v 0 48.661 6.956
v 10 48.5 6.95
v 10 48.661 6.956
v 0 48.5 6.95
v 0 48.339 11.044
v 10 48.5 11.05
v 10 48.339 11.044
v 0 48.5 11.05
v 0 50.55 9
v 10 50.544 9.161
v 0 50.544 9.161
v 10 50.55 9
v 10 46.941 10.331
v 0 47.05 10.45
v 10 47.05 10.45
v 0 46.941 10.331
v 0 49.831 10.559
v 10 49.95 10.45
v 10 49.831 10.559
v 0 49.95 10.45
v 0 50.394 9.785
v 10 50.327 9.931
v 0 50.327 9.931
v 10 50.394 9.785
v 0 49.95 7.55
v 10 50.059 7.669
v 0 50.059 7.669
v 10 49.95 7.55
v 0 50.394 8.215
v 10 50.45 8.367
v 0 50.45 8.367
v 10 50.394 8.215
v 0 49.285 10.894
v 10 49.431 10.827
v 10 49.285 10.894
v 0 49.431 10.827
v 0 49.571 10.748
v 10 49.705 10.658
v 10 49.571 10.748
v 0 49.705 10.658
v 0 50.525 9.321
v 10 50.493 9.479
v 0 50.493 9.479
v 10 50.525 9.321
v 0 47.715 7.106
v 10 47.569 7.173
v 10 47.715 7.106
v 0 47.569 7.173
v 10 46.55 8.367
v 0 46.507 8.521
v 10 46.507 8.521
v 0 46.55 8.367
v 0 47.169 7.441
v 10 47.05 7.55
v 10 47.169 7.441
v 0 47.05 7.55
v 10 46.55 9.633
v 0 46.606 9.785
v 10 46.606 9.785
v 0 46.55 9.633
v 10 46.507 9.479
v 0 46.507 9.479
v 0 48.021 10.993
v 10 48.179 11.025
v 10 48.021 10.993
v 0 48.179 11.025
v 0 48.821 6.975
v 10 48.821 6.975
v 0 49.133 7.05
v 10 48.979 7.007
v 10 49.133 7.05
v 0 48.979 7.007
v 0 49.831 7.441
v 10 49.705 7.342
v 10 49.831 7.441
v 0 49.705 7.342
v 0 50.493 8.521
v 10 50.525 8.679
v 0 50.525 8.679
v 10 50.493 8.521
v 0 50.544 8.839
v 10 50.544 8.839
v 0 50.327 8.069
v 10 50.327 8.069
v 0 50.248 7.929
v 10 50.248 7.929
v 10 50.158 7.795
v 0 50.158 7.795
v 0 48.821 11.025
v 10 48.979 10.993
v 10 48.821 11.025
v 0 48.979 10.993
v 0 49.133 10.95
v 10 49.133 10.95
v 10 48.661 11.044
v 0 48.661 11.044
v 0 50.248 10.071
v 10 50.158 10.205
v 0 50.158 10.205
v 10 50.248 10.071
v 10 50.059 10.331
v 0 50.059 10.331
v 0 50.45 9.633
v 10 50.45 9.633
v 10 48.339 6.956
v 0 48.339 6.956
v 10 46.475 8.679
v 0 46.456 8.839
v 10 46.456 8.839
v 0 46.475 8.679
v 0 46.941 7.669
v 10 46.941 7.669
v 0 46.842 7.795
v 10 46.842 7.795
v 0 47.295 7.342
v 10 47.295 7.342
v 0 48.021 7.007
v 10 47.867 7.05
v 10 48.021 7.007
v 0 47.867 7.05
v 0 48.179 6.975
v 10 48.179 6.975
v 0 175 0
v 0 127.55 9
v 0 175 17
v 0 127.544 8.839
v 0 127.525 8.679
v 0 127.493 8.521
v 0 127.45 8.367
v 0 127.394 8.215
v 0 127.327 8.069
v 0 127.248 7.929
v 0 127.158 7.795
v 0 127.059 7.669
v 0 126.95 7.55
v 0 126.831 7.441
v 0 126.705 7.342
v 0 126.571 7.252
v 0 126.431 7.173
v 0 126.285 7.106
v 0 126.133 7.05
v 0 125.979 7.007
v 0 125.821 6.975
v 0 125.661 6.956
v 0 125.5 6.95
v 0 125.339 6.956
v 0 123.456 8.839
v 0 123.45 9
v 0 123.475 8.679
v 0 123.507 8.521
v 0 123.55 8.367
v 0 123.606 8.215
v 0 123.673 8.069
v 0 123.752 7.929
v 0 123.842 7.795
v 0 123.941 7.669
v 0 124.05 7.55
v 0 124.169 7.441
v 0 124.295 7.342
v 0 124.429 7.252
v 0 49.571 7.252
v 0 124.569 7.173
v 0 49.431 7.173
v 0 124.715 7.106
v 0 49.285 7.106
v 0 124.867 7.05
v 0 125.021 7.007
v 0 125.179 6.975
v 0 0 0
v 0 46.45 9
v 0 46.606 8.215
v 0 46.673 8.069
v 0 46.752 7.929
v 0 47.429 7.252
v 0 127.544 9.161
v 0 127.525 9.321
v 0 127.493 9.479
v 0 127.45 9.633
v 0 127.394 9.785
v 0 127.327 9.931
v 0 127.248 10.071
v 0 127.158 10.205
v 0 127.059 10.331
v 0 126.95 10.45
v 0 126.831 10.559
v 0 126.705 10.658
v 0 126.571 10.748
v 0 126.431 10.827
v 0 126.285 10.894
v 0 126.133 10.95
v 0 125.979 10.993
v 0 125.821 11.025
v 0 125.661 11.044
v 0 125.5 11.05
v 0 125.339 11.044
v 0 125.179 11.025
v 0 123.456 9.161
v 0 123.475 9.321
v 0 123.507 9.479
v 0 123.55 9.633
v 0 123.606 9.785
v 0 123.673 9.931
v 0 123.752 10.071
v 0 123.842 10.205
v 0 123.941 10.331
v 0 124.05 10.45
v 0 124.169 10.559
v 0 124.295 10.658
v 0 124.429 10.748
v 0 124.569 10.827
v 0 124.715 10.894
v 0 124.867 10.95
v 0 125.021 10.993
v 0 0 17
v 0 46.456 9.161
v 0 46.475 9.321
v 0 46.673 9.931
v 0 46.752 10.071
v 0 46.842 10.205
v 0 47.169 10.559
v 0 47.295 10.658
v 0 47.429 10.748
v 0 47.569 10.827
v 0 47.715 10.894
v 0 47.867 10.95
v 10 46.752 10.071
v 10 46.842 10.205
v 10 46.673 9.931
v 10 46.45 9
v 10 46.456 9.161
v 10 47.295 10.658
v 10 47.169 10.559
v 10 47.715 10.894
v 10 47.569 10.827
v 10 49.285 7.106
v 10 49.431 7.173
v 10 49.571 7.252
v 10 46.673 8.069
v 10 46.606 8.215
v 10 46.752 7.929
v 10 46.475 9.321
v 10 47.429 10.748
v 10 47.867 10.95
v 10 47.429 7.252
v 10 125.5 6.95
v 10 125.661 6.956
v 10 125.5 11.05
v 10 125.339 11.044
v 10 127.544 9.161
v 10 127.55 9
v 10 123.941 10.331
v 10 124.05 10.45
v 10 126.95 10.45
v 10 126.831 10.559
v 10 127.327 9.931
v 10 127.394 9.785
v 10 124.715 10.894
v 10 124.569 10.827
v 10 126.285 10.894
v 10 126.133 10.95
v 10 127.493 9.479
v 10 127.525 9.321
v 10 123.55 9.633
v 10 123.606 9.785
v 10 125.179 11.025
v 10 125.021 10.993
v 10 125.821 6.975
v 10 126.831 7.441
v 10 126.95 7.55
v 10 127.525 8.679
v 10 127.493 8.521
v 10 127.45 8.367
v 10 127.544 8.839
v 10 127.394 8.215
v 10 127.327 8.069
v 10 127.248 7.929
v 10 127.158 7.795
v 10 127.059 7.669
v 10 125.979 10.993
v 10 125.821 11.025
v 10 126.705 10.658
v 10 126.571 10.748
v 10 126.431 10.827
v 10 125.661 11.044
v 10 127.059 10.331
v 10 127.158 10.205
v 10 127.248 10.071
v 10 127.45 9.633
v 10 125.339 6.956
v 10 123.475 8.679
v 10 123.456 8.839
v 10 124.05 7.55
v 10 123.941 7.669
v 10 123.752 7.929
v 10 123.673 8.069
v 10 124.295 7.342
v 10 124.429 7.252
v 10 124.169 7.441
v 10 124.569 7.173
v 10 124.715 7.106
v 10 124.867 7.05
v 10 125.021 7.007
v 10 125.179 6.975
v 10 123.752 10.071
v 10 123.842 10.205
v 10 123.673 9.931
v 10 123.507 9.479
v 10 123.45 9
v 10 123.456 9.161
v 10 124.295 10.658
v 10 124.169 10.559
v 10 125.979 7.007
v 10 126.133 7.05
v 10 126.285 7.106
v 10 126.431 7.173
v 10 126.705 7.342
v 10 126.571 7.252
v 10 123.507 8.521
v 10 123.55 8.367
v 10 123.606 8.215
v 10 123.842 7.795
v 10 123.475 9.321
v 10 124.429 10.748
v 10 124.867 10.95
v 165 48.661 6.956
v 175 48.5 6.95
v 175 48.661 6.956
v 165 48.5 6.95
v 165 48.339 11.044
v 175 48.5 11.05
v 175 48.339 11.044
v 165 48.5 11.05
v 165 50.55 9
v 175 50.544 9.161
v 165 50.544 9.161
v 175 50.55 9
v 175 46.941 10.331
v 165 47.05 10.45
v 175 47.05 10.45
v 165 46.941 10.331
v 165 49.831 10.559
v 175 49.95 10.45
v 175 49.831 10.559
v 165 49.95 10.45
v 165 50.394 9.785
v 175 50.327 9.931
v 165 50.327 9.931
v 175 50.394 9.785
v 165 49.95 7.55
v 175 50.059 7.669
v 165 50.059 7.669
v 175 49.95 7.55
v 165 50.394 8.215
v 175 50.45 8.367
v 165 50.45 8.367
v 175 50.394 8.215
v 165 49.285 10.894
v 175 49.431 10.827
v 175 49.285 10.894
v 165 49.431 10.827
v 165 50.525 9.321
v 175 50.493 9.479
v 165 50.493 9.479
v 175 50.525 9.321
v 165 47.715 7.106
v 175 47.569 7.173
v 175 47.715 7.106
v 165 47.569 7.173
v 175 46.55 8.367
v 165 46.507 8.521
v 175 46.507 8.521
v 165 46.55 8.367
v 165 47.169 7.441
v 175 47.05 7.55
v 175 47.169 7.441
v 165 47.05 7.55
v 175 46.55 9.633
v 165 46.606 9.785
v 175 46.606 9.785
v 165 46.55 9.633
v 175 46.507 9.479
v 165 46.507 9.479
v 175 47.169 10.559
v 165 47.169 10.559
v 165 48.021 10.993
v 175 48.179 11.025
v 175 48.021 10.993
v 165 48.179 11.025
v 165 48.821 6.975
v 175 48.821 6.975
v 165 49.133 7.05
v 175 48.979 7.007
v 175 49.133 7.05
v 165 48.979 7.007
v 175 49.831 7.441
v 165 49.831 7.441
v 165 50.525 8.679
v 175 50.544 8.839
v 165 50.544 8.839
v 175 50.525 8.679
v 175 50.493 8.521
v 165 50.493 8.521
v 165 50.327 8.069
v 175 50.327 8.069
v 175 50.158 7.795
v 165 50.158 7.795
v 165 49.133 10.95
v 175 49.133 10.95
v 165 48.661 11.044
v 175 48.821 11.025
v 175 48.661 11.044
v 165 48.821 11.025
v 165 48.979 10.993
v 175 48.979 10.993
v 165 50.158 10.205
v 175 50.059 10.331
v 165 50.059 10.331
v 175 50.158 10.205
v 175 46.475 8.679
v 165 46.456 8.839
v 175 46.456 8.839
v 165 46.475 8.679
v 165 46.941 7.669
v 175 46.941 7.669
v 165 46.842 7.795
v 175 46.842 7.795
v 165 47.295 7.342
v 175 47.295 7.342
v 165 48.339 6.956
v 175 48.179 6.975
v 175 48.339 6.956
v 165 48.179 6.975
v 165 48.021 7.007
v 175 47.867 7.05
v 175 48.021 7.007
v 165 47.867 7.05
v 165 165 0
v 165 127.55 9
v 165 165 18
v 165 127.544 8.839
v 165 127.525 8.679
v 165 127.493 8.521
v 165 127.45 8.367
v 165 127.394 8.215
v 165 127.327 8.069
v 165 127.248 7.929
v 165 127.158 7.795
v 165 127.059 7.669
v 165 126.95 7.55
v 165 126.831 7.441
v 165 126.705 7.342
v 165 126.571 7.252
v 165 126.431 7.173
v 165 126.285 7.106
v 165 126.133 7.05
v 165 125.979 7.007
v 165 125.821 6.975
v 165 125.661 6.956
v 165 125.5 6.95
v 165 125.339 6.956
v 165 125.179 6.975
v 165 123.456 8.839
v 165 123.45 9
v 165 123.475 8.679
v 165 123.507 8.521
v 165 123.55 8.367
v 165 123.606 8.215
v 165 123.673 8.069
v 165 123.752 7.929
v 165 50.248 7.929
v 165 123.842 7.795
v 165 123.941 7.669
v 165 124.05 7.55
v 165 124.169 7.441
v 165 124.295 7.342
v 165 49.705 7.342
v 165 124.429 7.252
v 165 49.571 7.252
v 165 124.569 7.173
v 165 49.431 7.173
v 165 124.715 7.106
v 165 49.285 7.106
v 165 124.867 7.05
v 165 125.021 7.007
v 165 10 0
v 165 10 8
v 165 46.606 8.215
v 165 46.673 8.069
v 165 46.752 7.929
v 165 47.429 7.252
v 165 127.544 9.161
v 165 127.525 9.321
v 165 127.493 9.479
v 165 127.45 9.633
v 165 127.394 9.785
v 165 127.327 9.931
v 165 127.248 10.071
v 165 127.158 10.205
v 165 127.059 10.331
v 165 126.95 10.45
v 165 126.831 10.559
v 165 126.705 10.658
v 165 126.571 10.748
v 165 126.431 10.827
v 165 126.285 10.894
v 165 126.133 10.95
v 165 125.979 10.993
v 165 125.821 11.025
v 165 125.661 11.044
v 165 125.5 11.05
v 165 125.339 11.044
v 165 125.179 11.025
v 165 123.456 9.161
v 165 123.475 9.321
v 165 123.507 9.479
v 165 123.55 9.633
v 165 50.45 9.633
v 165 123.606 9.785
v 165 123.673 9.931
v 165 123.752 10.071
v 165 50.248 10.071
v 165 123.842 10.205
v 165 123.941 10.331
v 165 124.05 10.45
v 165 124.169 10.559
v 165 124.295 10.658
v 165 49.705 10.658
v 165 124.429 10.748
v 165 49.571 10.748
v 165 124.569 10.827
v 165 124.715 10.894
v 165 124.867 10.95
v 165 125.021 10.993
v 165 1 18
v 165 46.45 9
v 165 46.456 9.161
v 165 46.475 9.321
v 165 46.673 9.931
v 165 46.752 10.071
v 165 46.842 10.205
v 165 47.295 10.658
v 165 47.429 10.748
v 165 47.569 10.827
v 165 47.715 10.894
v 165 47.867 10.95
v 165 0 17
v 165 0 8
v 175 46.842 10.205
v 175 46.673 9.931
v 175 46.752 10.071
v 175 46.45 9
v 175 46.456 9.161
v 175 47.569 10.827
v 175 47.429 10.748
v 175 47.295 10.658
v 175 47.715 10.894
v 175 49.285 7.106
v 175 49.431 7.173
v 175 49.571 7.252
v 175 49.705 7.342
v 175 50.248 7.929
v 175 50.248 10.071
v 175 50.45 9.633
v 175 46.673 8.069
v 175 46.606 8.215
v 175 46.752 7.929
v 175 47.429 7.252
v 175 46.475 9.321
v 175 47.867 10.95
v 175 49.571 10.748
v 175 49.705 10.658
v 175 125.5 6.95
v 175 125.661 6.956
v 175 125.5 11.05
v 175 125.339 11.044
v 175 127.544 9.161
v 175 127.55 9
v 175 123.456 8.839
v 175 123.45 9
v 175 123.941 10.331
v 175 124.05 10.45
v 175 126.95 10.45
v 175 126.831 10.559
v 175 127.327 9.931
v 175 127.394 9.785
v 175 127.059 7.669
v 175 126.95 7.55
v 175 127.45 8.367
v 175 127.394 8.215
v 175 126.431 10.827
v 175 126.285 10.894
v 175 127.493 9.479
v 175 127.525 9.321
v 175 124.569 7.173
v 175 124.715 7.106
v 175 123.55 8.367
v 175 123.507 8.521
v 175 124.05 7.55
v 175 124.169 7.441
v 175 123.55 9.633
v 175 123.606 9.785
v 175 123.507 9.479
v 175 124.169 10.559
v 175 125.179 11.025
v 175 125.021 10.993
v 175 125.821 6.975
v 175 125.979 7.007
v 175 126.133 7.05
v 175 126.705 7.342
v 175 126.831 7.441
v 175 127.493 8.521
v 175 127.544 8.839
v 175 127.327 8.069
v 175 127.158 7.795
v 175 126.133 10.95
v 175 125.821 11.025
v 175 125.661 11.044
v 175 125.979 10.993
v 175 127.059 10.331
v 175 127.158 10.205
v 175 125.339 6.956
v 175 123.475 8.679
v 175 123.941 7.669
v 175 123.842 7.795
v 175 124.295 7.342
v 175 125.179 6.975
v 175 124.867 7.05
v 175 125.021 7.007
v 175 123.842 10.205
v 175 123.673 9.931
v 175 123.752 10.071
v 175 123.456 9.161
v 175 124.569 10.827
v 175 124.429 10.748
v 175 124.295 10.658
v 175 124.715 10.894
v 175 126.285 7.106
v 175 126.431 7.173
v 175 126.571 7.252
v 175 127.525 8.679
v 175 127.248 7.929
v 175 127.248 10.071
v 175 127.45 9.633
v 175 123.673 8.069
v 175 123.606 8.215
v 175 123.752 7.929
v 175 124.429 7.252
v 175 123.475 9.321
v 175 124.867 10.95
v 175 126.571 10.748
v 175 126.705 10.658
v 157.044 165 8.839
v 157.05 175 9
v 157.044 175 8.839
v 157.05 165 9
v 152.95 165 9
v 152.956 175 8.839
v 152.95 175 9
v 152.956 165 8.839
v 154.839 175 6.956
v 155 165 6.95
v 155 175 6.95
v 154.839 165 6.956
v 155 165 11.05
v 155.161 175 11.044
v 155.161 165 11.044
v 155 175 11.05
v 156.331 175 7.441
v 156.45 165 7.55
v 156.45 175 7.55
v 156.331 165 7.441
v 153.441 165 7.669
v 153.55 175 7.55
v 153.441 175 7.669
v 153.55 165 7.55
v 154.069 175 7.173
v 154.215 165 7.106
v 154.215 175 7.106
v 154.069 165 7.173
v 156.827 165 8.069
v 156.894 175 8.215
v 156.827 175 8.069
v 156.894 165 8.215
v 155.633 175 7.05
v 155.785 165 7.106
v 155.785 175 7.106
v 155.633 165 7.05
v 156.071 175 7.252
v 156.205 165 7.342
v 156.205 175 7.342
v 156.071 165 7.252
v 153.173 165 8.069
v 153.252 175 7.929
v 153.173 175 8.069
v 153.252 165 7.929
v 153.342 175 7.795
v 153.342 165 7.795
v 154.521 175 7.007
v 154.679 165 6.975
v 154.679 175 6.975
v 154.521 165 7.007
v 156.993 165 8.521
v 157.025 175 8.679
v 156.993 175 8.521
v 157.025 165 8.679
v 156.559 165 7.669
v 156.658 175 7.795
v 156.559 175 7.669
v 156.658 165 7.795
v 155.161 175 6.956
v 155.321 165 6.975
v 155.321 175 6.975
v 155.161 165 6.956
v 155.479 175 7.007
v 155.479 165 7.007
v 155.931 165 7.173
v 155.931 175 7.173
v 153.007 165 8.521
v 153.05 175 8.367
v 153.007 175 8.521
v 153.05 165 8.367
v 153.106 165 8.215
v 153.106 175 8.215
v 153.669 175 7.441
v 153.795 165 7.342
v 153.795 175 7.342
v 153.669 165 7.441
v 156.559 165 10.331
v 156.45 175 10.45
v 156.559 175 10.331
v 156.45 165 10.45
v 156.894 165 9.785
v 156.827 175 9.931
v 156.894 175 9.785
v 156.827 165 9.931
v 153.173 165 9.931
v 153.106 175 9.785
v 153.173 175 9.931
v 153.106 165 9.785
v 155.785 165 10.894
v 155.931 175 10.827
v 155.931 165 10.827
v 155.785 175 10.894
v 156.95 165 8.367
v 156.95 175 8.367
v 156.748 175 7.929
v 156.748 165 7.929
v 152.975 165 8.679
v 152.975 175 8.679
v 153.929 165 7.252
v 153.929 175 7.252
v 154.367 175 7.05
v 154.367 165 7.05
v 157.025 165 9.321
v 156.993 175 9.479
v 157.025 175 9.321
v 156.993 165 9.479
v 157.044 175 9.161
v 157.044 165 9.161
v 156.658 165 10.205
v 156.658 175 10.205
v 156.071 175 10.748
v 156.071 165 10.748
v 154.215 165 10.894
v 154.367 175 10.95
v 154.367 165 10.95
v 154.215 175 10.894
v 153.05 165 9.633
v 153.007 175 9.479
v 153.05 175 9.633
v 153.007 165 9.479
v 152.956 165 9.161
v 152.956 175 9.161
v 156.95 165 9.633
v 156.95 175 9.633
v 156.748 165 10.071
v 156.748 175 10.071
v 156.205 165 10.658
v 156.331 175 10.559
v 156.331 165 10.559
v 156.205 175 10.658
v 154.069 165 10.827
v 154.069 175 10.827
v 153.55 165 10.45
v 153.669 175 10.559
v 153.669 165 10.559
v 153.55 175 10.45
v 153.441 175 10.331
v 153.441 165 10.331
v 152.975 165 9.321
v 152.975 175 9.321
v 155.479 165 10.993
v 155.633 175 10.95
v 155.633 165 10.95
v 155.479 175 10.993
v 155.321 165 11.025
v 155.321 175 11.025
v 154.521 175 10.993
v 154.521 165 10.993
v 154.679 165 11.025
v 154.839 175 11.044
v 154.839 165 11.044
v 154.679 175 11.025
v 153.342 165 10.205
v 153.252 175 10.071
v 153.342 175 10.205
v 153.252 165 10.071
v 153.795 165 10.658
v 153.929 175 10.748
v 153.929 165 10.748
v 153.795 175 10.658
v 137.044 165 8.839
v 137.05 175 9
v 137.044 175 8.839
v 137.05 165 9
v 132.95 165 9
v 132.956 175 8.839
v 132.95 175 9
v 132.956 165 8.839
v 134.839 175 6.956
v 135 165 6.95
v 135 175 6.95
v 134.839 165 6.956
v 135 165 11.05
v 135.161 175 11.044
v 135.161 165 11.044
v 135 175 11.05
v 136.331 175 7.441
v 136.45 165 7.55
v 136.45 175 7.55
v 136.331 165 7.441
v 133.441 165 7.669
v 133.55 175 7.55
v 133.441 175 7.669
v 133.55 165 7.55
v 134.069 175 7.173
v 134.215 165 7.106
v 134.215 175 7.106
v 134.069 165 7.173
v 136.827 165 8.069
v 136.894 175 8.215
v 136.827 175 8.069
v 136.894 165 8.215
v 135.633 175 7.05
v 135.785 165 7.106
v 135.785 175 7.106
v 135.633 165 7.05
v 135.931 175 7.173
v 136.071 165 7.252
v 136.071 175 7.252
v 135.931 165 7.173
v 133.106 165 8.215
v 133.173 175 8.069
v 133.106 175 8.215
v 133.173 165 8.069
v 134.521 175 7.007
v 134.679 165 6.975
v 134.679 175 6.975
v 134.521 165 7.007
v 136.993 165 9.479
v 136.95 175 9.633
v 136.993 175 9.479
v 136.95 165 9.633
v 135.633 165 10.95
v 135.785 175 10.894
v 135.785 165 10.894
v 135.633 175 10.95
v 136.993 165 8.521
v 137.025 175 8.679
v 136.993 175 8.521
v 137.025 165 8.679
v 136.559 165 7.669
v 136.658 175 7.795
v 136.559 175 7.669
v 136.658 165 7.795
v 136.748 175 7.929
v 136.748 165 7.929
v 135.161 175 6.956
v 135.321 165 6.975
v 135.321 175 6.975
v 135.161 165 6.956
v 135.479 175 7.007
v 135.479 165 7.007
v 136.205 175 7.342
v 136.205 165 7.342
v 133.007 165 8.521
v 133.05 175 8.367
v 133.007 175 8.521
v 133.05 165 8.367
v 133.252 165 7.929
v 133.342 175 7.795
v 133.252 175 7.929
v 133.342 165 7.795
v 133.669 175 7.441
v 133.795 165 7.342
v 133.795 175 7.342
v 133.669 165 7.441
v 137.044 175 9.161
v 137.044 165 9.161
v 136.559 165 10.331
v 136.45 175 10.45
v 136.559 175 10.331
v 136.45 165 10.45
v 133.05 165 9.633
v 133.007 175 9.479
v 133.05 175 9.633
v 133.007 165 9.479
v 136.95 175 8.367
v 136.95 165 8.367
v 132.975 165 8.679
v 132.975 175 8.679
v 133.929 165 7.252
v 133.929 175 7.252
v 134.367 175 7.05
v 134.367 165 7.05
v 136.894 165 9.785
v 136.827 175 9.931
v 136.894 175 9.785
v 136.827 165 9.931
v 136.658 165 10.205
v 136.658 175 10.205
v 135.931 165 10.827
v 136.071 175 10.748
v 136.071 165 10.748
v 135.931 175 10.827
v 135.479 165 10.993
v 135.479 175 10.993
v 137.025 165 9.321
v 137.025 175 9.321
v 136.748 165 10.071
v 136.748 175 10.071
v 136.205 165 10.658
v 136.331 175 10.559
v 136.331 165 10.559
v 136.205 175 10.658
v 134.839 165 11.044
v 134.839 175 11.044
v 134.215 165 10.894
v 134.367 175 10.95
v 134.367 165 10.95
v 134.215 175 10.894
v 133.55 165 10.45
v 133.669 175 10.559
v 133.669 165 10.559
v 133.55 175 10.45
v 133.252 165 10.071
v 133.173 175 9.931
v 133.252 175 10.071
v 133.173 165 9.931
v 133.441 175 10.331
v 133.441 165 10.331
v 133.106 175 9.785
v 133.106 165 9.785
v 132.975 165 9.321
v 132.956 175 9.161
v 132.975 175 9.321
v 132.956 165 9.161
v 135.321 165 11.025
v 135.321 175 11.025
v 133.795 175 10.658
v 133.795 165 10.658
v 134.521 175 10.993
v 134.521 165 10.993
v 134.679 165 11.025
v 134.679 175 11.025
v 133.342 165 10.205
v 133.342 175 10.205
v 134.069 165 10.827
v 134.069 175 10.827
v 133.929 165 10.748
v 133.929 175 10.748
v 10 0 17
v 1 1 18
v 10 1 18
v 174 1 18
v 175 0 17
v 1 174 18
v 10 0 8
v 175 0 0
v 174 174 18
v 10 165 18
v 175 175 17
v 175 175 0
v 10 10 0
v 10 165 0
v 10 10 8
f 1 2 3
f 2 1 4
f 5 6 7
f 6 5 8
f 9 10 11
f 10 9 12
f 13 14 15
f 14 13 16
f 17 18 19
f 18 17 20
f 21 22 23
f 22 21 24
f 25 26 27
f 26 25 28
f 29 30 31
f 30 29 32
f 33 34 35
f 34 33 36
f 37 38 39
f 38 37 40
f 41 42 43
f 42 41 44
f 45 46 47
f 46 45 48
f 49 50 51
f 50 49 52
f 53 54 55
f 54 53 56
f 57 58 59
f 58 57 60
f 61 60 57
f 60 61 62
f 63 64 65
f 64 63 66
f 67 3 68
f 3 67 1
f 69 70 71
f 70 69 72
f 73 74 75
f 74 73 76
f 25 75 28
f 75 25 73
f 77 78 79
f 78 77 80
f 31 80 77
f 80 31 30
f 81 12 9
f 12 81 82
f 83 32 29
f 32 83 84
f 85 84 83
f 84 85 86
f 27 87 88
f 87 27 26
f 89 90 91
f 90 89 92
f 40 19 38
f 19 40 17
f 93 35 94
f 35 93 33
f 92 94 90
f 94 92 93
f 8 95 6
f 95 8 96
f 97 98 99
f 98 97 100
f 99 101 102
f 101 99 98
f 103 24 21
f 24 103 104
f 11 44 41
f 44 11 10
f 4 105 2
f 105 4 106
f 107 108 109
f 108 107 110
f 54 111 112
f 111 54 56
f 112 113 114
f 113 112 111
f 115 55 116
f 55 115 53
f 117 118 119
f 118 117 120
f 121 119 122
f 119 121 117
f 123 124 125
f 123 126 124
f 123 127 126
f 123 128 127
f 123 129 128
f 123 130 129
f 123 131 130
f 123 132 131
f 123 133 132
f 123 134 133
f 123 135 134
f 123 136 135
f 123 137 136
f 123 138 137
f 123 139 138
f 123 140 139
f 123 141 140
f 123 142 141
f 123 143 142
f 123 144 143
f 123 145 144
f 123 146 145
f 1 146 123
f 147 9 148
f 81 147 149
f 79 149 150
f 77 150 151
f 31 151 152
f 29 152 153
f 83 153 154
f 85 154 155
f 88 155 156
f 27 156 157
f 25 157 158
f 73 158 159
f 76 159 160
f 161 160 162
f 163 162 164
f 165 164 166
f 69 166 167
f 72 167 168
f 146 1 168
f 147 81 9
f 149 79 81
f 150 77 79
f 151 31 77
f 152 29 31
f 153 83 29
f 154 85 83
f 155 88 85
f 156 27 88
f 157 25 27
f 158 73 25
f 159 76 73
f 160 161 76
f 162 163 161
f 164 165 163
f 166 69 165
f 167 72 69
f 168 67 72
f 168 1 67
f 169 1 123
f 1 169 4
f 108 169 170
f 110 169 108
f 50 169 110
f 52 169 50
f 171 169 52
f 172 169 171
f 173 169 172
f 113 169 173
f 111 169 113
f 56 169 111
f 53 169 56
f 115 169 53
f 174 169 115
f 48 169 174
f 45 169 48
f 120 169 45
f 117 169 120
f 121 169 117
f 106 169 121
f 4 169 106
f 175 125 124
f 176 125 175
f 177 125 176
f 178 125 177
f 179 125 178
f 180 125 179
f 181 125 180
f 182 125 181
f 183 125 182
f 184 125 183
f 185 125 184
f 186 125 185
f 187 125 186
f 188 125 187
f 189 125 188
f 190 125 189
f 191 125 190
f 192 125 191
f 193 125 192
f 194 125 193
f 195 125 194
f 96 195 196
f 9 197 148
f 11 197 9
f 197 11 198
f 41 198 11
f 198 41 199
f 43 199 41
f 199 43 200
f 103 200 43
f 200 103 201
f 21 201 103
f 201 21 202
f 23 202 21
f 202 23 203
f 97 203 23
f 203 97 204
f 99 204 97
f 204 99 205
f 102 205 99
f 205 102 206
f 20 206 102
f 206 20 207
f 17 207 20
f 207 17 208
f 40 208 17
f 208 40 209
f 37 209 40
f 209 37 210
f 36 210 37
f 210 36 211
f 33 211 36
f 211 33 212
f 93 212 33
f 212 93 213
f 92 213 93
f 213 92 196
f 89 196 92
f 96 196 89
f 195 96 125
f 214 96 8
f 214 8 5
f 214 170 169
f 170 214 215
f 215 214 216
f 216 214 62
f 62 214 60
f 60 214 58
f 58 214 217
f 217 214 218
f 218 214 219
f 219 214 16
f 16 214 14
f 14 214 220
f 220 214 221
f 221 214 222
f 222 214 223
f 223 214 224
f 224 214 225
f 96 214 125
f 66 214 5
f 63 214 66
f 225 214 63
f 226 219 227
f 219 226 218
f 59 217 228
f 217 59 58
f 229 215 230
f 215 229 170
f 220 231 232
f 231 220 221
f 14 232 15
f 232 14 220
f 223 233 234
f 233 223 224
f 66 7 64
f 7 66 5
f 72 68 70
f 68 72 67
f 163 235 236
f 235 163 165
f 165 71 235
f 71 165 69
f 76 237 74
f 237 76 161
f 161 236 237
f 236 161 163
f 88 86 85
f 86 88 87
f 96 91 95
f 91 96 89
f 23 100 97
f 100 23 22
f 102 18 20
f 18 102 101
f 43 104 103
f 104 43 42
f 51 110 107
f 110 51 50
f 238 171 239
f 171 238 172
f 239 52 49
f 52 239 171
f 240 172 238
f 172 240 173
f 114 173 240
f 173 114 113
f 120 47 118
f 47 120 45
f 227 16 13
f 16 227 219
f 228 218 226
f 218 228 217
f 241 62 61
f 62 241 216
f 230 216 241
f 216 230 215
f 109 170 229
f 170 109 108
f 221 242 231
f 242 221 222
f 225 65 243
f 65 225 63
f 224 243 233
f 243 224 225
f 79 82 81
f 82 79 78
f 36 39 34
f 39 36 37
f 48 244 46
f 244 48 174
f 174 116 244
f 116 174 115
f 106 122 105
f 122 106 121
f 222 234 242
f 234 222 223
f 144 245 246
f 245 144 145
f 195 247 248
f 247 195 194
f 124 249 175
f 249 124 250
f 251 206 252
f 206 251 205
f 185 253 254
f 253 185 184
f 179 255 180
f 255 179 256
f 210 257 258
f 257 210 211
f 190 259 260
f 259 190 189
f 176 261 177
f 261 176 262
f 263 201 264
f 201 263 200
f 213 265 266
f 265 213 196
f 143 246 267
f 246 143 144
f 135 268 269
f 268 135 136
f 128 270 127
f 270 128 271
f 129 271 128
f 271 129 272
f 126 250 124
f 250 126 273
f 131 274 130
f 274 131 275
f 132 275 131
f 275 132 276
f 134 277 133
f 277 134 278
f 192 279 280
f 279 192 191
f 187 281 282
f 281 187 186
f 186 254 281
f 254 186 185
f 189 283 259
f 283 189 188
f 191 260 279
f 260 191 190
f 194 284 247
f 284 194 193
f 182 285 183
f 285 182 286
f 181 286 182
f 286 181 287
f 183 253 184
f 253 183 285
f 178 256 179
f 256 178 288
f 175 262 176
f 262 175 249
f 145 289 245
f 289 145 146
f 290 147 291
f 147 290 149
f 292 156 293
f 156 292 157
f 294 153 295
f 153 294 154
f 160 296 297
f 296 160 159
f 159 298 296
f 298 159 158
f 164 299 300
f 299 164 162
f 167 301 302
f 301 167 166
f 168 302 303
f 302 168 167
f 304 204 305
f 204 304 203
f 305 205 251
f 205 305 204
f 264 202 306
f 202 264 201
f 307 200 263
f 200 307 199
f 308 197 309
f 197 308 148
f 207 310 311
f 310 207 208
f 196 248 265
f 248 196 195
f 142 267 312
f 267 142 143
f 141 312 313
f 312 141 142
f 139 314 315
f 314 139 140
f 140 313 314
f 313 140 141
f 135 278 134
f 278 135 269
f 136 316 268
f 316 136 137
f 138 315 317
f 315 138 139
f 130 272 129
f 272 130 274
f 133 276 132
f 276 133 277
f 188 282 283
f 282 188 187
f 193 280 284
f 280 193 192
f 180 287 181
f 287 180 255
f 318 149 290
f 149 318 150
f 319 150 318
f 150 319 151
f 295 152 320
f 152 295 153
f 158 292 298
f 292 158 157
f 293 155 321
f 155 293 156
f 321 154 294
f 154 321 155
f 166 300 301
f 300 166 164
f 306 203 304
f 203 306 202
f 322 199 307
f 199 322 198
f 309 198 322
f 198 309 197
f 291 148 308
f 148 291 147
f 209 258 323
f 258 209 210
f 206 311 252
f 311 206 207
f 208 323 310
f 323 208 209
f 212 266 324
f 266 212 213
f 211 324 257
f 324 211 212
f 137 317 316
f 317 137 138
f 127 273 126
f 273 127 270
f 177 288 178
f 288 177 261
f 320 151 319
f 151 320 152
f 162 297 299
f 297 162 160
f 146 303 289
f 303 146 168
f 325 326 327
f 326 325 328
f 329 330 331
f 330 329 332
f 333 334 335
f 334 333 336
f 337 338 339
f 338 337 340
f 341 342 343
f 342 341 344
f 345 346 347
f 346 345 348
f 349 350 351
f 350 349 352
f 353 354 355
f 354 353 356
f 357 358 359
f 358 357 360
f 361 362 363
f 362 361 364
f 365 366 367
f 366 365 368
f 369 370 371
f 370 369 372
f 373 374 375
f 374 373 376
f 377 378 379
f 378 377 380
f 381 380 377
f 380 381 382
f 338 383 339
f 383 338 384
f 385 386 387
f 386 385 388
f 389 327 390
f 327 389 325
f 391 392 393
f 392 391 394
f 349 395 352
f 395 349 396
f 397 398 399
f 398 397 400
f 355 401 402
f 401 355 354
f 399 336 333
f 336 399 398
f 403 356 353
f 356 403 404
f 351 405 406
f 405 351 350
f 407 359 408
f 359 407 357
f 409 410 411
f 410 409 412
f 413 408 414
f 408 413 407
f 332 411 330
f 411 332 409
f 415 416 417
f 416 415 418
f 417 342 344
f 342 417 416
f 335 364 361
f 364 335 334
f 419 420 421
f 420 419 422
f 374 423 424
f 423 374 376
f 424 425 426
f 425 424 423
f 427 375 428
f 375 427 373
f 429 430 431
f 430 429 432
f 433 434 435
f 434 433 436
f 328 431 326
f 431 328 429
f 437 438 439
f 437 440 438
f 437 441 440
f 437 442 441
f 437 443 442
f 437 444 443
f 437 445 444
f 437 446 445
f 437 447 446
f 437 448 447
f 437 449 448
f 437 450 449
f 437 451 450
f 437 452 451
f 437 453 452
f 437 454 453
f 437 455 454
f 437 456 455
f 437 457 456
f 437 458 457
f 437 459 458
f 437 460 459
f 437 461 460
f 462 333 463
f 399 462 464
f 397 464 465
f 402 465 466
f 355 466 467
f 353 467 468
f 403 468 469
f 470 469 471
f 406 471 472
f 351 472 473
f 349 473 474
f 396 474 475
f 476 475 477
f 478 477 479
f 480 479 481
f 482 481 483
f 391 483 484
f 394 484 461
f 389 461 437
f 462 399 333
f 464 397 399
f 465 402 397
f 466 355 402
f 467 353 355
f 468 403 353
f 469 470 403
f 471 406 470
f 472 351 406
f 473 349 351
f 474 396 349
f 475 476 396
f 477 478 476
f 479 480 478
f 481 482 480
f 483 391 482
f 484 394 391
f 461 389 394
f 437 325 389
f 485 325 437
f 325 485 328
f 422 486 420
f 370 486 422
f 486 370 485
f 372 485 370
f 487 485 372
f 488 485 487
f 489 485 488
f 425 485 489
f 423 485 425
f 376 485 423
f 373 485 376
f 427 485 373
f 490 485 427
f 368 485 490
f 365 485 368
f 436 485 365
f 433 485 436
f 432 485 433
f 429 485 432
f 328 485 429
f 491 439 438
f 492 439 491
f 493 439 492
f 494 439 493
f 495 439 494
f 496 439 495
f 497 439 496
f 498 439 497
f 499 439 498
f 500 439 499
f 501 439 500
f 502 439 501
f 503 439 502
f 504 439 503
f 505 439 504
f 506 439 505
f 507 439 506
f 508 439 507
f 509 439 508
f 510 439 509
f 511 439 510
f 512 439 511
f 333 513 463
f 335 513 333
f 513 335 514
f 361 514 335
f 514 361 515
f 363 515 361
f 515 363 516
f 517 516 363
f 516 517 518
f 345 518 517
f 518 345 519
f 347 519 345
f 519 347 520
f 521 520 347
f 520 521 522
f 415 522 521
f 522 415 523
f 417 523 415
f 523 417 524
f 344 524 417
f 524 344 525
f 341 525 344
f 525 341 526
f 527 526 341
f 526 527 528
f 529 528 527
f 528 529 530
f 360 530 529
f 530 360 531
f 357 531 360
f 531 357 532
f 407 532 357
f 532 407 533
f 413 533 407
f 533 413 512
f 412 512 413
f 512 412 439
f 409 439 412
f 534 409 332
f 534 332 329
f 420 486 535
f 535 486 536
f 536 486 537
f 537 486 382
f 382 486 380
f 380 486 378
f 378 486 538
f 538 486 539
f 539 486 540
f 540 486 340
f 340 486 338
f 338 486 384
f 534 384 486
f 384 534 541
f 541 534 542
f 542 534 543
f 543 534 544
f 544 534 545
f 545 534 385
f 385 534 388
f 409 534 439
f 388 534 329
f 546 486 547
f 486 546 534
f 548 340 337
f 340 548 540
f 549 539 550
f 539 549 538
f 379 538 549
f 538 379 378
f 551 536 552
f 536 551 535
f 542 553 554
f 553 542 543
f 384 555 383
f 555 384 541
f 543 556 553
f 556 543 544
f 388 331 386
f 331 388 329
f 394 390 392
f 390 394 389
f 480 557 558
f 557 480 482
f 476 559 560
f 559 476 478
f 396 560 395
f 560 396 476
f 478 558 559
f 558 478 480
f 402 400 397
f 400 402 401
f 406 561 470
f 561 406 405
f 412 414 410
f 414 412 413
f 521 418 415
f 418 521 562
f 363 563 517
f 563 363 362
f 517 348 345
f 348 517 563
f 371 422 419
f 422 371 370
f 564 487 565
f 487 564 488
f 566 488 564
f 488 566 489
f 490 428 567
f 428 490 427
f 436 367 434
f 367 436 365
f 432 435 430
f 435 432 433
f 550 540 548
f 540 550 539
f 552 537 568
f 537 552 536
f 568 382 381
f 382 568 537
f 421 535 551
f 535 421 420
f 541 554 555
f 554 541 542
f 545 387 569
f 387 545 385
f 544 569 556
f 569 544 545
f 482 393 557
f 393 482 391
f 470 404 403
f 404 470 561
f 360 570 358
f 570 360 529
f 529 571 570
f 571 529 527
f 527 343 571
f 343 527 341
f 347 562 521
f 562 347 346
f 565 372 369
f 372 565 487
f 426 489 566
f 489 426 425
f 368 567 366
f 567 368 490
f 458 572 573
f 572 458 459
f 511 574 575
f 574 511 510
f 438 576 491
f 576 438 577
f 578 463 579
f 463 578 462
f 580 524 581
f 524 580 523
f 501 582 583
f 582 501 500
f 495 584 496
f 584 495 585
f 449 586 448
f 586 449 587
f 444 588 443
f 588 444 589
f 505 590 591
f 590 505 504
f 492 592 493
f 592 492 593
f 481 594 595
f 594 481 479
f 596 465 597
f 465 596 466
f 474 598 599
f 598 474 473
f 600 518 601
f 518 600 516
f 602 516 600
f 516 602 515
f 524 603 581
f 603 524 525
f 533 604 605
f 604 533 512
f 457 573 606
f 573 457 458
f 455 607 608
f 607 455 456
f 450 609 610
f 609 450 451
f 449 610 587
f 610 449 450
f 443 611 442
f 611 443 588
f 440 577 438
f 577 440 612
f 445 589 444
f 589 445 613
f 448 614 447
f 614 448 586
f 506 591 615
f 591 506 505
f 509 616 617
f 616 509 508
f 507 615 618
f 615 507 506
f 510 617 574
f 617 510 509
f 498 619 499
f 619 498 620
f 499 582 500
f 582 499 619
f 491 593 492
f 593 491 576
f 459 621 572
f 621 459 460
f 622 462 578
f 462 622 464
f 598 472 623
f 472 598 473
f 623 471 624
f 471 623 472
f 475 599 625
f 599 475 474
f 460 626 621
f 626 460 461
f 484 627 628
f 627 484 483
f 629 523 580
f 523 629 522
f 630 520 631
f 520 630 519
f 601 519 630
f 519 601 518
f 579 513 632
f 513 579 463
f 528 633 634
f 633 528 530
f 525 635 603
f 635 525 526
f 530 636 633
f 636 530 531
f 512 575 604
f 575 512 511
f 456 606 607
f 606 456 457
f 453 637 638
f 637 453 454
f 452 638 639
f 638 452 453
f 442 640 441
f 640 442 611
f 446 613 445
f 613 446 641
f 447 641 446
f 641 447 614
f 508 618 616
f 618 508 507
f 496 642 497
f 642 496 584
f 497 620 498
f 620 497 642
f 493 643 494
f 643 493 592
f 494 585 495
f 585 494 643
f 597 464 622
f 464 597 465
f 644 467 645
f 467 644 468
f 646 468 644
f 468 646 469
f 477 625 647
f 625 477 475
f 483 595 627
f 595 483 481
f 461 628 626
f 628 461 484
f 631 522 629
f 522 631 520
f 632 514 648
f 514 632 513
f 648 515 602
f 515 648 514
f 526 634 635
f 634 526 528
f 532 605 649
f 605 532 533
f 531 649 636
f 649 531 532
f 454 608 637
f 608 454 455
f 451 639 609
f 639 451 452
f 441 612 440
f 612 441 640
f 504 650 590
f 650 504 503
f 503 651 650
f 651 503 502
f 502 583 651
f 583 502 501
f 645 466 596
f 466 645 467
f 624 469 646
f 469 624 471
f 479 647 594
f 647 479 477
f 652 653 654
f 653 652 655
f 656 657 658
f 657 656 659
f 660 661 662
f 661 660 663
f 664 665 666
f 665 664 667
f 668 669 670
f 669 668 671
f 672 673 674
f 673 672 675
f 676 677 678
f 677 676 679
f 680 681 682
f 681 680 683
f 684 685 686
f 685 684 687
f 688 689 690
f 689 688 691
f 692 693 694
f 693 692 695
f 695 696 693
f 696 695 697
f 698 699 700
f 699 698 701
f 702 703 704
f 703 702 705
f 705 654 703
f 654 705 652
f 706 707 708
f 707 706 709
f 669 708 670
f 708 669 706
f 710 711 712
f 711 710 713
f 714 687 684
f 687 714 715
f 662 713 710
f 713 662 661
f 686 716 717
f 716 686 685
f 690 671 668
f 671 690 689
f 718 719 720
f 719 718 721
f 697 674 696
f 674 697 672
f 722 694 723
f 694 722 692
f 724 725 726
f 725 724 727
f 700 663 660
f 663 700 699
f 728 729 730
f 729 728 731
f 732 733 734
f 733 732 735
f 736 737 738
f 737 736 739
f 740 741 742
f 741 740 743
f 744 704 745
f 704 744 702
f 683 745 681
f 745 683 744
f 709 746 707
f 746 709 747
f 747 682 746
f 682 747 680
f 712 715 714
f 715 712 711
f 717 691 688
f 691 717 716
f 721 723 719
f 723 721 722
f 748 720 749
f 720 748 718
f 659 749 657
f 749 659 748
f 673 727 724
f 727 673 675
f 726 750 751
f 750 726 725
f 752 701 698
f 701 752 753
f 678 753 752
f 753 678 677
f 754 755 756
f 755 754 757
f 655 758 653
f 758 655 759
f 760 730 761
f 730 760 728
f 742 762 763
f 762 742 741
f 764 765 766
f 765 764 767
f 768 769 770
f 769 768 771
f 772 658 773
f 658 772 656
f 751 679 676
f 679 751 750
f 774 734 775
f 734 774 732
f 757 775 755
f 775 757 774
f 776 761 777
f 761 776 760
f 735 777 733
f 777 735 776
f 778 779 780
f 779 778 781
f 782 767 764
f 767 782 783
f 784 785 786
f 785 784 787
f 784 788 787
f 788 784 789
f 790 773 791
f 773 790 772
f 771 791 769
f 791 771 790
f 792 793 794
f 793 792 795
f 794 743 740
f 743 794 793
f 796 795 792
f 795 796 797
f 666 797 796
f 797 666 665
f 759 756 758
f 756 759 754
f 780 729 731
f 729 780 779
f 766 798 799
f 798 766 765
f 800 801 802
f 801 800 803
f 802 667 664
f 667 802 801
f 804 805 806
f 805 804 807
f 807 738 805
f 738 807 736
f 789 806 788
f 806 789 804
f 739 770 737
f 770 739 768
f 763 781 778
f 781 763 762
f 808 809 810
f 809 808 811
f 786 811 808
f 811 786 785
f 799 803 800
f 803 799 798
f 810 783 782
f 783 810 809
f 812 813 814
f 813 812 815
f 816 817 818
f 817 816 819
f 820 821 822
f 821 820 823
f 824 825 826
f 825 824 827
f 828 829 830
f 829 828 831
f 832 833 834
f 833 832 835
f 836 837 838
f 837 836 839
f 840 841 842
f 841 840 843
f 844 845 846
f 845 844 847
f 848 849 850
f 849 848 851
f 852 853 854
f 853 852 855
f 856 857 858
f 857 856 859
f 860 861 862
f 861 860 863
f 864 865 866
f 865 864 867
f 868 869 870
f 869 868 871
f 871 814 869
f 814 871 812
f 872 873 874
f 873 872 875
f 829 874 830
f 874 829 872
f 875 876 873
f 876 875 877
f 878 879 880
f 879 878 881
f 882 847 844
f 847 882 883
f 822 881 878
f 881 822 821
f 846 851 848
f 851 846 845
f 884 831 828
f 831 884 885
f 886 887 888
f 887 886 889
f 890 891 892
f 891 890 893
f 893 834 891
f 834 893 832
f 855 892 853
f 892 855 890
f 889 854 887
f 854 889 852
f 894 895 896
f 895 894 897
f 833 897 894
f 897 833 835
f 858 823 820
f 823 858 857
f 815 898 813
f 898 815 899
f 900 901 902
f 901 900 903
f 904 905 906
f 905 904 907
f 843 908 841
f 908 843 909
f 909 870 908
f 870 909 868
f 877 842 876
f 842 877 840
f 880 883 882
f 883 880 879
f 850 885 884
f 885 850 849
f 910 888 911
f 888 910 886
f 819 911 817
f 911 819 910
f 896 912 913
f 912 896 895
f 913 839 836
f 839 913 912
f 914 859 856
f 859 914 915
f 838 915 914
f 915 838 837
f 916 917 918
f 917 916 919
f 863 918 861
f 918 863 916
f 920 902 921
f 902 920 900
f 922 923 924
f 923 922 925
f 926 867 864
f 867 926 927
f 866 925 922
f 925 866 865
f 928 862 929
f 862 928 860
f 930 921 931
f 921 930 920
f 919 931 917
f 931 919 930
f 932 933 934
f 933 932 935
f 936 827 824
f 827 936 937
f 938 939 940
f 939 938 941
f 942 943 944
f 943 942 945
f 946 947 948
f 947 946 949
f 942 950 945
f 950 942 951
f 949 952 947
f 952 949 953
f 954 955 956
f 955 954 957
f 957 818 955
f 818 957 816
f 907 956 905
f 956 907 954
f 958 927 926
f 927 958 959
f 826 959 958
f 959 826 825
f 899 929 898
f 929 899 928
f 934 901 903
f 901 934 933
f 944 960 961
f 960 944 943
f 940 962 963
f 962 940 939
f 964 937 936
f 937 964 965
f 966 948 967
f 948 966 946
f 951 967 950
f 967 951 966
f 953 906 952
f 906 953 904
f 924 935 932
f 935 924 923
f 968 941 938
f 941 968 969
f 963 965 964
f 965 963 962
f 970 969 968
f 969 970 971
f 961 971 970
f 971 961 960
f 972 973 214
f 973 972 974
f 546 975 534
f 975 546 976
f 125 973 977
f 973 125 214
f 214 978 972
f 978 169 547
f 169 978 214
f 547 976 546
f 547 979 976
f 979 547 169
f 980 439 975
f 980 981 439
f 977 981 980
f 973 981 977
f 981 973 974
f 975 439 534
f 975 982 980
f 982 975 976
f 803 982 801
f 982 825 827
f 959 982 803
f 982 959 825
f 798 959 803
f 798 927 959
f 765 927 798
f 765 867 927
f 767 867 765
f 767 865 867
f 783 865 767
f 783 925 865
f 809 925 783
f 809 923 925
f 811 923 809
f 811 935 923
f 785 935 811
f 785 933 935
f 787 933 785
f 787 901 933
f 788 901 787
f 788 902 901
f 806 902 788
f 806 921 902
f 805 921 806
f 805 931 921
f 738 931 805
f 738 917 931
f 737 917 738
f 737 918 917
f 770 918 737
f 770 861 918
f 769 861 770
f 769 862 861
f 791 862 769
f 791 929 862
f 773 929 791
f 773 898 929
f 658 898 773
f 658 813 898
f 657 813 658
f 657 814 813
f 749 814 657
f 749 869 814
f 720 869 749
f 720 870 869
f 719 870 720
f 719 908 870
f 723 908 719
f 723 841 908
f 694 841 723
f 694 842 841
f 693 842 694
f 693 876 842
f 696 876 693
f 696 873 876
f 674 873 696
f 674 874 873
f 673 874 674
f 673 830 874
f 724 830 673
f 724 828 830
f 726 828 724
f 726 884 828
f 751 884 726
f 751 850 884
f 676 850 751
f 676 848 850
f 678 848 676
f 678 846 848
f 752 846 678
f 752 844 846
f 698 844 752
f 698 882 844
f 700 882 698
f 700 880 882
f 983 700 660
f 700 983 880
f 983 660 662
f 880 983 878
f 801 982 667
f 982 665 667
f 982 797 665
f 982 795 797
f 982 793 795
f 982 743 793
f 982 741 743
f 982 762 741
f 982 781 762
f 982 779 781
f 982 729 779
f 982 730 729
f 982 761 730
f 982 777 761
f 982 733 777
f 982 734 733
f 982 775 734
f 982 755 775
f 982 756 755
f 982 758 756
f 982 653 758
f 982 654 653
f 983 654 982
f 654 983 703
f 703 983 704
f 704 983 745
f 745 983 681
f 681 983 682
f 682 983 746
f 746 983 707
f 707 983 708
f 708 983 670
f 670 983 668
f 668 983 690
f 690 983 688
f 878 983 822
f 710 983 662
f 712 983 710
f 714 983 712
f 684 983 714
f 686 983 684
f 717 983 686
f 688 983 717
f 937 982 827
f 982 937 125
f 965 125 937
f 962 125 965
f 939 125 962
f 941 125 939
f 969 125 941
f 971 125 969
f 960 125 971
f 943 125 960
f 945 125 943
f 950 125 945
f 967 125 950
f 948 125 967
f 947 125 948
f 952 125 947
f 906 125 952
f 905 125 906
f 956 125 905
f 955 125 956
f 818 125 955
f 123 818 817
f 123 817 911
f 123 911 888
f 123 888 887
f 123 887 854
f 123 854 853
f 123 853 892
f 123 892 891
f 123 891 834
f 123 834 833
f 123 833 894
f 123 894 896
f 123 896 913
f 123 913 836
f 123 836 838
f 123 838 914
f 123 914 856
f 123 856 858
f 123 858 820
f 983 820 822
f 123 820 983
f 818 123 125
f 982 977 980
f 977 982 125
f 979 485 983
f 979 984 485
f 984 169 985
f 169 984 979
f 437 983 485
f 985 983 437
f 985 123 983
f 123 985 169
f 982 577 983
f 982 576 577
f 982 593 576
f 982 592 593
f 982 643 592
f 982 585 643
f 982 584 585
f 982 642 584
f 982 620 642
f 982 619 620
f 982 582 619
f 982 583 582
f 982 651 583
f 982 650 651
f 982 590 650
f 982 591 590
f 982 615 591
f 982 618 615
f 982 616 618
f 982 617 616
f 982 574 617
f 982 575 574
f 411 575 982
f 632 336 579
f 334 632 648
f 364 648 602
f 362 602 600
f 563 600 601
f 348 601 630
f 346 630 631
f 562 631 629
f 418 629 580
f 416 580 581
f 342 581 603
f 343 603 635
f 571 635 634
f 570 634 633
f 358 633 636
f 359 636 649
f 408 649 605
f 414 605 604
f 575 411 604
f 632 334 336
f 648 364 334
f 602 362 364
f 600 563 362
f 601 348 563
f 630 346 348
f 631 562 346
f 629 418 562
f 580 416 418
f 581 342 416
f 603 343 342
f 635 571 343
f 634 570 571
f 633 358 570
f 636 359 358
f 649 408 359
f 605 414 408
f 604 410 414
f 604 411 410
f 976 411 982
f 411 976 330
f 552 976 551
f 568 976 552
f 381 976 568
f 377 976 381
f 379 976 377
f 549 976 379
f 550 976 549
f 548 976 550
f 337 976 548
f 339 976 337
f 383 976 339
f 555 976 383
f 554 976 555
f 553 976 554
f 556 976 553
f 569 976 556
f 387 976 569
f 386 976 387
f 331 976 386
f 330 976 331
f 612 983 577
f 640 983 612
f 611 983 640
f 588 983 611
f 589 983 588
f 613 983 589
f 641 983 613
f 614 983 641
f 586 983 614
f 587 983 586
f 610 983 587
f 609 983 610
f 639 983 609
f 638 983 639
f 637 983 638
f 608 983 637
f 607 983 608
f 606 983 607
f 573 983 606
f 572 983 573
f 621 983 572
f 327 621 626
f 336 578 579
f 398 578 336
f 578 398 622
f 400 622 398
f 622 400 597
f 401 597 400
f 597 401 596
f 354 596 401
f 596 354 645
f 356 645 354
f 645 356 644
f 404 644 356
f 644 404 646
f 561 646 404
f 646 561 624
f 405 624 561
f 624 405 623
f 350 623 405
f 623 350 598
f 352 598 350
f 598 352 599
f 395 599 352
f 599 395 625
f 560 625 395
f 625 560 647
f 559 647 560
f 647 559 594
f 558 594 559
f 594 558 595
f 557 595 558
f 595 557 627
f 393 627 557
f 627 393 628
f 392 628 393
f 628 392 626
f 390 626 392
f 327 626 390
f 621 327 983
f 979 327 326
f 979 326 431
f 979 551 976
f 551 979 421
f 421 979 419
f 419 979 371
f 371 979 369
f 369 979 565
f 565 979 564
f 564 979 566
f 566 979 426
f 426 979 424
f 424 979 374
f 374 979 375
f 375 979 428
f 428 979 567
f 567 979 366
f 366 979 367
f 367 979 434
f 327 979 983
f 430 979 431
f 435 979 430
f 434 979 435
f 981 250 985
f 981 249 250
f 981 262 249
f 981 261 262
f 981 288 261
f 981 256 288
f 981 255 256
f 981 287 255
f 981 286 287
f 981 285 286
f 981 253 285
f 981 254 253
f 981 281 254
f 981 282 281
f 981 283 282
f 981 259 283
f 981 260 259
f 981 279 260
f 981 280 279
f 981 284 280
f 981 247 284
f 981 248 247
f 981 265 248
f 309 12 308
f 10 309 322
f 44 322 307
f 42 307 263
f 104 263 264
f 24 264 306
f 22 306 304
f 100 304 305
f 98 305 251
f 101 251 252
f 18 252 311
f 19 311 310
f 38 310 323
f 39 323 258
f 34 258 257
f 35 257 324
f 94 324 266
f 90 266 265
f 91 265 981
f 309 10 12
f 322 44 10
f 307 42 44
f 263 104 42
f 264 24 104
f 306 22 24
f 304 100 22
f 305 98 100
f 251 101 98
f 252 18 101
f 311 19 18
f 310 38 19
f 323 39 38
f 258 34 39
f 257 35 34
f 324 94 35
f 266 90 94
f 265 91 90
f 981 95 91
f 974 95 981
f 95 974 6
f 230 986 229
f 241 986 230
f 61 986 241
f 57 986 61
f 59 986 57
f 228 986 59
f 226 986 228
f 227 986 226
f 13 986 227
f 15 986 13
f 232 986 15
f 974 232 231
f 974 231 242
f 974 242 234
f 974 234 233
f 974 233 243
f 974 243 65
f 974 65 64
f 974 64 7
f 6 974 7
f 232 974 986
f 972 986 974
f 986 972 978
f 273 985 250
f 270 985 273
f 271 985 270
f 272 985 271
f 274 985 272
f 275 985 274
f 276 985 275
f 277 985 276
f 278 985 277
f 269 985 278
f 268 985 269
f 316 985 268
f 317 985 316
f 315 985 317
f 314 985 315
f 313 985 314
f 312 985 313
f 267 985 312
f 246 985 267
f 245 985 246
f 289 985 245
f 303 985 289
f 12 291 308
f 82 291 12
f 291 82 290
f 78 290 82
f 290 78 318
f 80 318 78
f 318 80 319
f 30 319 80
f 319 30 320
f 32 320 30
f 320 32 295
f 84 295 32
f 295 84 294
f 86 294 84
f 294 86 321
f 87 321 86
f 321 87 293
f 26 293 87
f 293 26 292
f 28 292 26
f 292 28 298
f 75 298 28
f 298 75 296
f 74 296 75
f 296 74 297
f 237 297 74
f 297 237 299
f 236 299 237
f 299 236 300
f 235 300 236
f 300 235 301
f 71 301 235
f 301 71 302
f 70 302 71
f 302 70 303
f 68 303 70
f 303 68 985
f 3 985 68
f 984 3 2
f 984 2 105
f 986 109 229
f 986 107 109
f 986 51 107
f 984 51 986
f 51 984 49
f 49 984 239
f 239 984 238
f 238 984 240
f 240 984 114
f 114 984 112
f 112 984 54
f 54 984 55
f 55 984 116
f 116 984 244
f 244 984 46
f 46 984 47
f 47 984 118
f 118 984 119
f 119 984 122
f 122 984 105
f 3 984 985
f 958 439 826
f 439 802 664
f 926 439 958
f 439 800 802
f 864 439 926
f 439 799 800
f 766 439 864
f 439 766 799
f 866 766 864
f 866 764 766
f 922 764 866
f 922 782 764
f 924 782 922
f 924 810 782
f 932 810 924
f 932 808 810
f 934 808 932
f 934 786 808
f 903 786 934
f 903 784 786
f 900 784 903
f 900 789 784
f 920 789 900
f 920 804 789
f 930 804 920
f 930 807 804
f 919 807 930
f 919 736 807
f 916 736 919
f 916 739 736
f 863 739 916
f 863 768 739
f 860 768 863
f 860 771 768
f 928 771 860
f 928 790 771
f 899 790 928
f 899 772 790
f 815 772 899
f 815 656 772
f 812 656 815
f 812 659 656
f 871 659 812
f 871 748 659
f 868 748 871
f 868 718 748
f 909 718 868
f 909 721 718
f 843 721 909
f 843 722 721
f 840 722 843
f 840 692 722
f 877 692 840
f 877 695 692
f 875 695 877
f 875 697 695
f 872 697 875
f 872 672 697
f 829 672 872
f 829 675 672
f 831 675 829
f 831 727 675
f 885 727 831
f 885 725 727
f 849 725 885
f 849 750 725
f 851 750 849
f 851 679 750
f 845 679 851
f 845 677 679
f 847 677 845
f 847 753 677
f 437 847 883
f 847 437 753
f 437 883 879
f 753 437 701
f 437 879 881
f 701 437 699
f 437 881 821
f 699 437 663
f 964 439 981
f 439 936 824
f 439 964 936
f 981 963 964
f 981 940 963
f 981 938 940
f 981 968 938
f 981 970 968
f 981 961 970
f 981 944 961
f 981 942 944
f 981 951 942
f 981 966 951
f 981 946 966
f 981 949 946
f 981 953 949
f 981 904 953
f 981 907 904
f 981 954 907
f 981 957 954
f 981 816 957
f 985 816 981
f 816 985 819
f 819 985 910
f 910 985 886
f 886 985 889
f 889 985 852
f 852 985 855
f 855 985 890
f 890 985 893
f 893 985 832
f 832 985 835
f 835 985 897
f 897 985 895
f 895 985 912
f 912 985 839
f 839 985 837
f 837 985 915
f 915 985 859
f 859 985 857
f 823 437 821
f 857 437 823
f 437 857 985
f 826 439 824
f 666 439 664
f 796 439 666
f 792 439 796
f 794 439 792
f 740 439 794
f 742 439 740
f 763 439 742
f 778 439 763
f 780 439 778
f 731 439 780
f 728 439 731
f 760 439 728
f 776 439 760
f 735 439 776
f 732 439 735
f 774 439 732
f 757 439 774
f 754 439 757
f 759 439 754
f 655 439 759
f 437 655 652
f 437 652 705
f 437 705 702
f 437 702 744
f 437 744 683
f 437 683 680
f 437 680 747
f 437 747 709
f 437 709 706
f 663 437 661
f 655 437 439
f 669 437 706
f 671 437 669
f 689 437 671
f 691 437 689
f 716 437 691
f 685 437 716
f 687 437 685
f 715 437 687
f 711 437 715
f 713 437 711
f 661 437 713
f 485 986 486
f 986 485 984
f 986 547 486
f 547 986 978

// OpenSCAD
/* 008-antenna-holder-frame.scad
Author: andimoto@posteo.de
----------------------------
*/

$fn=80;
extra = 0.1;

champferDist=1; //mm

clearance = 1; //mm
innerH = 154; //mm - add 1mm extra clearance
innerW = 154; //mm - add 1mm extra clearance
frameWallThickness = 10; //mm frame thickness

frameD = 18; //mm

screwDia = 3.2; //mm
insertDia = 4.1; //mm

grubScrewDia = 3.2; //mm

extensionLen = 250; //mm
railLen = extensionLen - 40; //mm
railDia = screwDia + 1; //mm

antennaExtensionMountW = 30; //mm
antennaExtensionLen = 120; //mm
antennaExtensionDia = 20; //mm

antennaSocketDia = 11+0.4; //mm

function getScrewDia(useInserts) = (useInserts==true) ? insertDia : screwDia ;

module frame(holderScrew = true, useInserts = true)
{
  difference()
  {
    /* ----- frame ----- */
    hull()
    {
      cube([innerW+clearance+2*frameWallThickness,
            innerH+clearance+2*frameWallThickness,
            frameD-champferDist]);
      translate([champferDist,champferDist,frameD-champferDist])
      cube([innerW+clearance+2*frameWallThickness-champferDist*2,
            innerH+clearance+2*frameWallThickness-champferDist*2,
            champferDist]);
    }
    translate([frameWallThickness,frameWallThickness,-extra/2])
    cube([innerW+clearance,
          innerH+clearance,
          frameD+extra]);

    translate([frameWallThickness,0,8])
      cube([innerW+clearance,frameWallThickness,frameD]);
    /* ----- frame end ----- */

    if(holderScrew == true)
    {
      /* screw holes */
      translate([0,frameWallThickness+innerH/4,frameD/2])
      rotate([0,90,0])
        cylinder(r=getScrewDia(useInserts)/2, h=frameWallThickness+clearance/2+extra);

      translate([0,frameWallThickness+innerH-innerH/4,frameD/2])
      rotate([0,90,0])
        cylinder(r=getScrewDia(useInserts)/2, h=frameWallThickness+clearance/2+extra);

      translate([frameWallThickness+clearance+innerW,frameWallThickness+innerH/4,frameD/2])
      rotate([0,90,0])
        cylinder(r=getScrewDia(useInserts)/2, h=frameWallThickness+extra);

      translate([frameWallThickness+clearance+innerW,frameWallThickness+innerH-innerH/4,frameD/2])
      rotate([0,90,0])
        cylinder(r=getScrewDia(useInserts)/2, h=frameWallThickness+extra);
      /* screw holes */
    }


    extraMountingScrew();
  }
}

module extraMountingScrew(useInserts = true)
{
  translate([frameWallThickness+clearance+innerW-10,frameWallThickness+innerH+clearance-extra/2,frameD/2])
  rotate([-90,0,0])
    cylinder(r=getScrewDia(useInserts)/2, h=frameWallThickness+extra);
  translate([frameWallThickness+clearance+innerW-30,frameWallThickness+innerH+clearance-extra/2,frameD/2])
  rotate([-90,0,0])
    cylinder(r=getScrewDia(useInserts)/2, h=frameWallThickness+extra);
}




module extensionMount(useInserts = true, mountingHoles = true)
{
  difference() {
    /* extension with champfer */
    hull()
    {
      cube([extensionLen,frameWallThickness-champferDist,frameD-champferDist*2]);
      translate([champferDist,frameWallThickness-champferDist,0])
        cube([extensionLen-champferDist,champferDist,frameD-champferDist*2]);
    }

    /* rail hole cutout */
    hull()
    {
      translate([5,-extra/2,(frameD-champferDist*2)/2])
      rotate([-90,0,0])
        cylinder(r=railDia/2, h=frameWallThickness+champferDist+extra );

      translate([railLen-railDia,-extra/2,(frameD-champferDist*2)/2])
      rotate([-90,0,0])
        cylinder(r=railDia/2, h=frameWallThickness+champferDist+extra );
    }

    if(mountingHoles == true)
    {
      /* mounting holes */
      translate([extensionLen-antennaExtensionMountW/4,-extra/2,(frameD-champferDist*2)/2])
      rotate([-90,0,0])
        cylinder(r=getScrewDia(useInserts)/2, h=frameWallThickness+champferDist+extra );

      translate([extensionLen-3*antennaExtensionMountW/4,-extra/2,(frameD-champferDist*2)/2])
      rotate([-90,0,0])
        cylinder(r=getScrewDia(useInserts)/2, h=frameWallThickness+champferDist+extra );
    }
  }
}

module antennaMount(grubScrew = true)
{
  difference()
  {
    union() //antennaMount extension
    {
      /* mounting plate */
      cube([antennaExtensionMountW,frameWallThickness,frameD-champferDist*2]);

      /* trapeze; connection between mounting plate and extension */
      hull()
      {
        translate([0,0,frameD-champferDist*3])
          cube([antennaExtensionMountW,frameWallThickness,champferDist]);
        translate([(antennaExtensionMountW-antennaExtensionDia)/2,0,frameD-champferDist*4+10])
          cube([antennaExtensionDia,frameWallThickness,champferDist]);
      }

      /* extension with hole for antenna */
      hull()
      {
        translate([(antennaExtensionMountW-antennaExtensionDia)/2,0,frameD-champferDist*4+10])
          cube([antennaExtensionDia,frameWallThickness,champferDist]);
        translate([antennaExtensionMountW/2,0,frameD-champferDist*3+10+antennaExtensionLen-antennaExtensionDia/2])
          rotate([-90,0,0])
          cylinder(r=antennaExtensionDia/2, h=frameWallThickness);
      }
    }



    /* screw holes for mounting antenna mount extension to other extension; holes are 1mm wider */
    translate([antennaExtensionMountW-antennaExtensionMountW/4,-extra/2,(frameD-champferDist*2)/2])
    rotate([-90,0,0])
      cylinder(r=(screwDia+1)/2, h=frameWallThickness+champferDist+extra );

    translate([antennaExtensionMountW-3*antennaExtensionMountW/4,-extra/2,(frameD-champferDist*2)/2])
    rotate([-90,0,0])
      cylinder(r=(screwDia+1)/2, h=frameWallThickness+champferDist+extra );

    /* rail hole */
    hull()
    {
      translate([antennaExtensionMountW/2,-extra/2,frameD-champferDist*3+antennaExtensionLen-antennaExtensionDia])
        rotate([-90,0,0])
        cylinder(r=railDia/2, h=frameWallThickness+extra);
      translate([antennaExtensionMountW/2,-extra/2,frameD-champferDist*3+antennaExtensionDia])
        rotate([-90,0,0])
        cylinder(r=railDia/2, h=frameWallThickness+extra);
    }

    /* antenna hole */
    translate([antennaExtensionMountW/2,-extra/2,frameD-champferDist*3+10+antennaExtensionLen-antennaExtensionDia/2])
      rotate([-90,0,0])
      cylinder(r=antennaSocketDia/2, h=frameWallThickness+extra);

    if(grubScrew == true)
    {
      translate([antennaExtensionMountW/2,frameWallThickness/2,frameD-champferDist*3+10+antennaExtensionLen-antennaExtensionDia/2])
        rotate([0,45,0])
        cylinder(r=grubScrewDia/2, h=frameWallThickness+extra);

      translate([antennaExtensionMountW/2,frameWallThickness/2,frameD-champferDist*3+10+antennaExtensionLen-antennaExtensionDia/2])
        rotate([0,-45,0])
        cylinder(r=grubScrewDia/2, h=frameWallThickness+extra);
    }
  }
}


/* #################################################################### */
/* ######################Model######################################### */
/* #################################################################### */

if(0)
{
  frame();
  translate([innerW-frameWallThickness*2+clearance-20,innerH+clearance+frameWallThickness*2,champferDist])
  {
    extensionMount();
//antennaExtensionMountW
    translate([extensionLen-antennaExtensionMountW,frameWallThickness,0])
    antennaMount();
  }
}

frame();
/* extensionMount(); */
/* antennaMount(true); */
